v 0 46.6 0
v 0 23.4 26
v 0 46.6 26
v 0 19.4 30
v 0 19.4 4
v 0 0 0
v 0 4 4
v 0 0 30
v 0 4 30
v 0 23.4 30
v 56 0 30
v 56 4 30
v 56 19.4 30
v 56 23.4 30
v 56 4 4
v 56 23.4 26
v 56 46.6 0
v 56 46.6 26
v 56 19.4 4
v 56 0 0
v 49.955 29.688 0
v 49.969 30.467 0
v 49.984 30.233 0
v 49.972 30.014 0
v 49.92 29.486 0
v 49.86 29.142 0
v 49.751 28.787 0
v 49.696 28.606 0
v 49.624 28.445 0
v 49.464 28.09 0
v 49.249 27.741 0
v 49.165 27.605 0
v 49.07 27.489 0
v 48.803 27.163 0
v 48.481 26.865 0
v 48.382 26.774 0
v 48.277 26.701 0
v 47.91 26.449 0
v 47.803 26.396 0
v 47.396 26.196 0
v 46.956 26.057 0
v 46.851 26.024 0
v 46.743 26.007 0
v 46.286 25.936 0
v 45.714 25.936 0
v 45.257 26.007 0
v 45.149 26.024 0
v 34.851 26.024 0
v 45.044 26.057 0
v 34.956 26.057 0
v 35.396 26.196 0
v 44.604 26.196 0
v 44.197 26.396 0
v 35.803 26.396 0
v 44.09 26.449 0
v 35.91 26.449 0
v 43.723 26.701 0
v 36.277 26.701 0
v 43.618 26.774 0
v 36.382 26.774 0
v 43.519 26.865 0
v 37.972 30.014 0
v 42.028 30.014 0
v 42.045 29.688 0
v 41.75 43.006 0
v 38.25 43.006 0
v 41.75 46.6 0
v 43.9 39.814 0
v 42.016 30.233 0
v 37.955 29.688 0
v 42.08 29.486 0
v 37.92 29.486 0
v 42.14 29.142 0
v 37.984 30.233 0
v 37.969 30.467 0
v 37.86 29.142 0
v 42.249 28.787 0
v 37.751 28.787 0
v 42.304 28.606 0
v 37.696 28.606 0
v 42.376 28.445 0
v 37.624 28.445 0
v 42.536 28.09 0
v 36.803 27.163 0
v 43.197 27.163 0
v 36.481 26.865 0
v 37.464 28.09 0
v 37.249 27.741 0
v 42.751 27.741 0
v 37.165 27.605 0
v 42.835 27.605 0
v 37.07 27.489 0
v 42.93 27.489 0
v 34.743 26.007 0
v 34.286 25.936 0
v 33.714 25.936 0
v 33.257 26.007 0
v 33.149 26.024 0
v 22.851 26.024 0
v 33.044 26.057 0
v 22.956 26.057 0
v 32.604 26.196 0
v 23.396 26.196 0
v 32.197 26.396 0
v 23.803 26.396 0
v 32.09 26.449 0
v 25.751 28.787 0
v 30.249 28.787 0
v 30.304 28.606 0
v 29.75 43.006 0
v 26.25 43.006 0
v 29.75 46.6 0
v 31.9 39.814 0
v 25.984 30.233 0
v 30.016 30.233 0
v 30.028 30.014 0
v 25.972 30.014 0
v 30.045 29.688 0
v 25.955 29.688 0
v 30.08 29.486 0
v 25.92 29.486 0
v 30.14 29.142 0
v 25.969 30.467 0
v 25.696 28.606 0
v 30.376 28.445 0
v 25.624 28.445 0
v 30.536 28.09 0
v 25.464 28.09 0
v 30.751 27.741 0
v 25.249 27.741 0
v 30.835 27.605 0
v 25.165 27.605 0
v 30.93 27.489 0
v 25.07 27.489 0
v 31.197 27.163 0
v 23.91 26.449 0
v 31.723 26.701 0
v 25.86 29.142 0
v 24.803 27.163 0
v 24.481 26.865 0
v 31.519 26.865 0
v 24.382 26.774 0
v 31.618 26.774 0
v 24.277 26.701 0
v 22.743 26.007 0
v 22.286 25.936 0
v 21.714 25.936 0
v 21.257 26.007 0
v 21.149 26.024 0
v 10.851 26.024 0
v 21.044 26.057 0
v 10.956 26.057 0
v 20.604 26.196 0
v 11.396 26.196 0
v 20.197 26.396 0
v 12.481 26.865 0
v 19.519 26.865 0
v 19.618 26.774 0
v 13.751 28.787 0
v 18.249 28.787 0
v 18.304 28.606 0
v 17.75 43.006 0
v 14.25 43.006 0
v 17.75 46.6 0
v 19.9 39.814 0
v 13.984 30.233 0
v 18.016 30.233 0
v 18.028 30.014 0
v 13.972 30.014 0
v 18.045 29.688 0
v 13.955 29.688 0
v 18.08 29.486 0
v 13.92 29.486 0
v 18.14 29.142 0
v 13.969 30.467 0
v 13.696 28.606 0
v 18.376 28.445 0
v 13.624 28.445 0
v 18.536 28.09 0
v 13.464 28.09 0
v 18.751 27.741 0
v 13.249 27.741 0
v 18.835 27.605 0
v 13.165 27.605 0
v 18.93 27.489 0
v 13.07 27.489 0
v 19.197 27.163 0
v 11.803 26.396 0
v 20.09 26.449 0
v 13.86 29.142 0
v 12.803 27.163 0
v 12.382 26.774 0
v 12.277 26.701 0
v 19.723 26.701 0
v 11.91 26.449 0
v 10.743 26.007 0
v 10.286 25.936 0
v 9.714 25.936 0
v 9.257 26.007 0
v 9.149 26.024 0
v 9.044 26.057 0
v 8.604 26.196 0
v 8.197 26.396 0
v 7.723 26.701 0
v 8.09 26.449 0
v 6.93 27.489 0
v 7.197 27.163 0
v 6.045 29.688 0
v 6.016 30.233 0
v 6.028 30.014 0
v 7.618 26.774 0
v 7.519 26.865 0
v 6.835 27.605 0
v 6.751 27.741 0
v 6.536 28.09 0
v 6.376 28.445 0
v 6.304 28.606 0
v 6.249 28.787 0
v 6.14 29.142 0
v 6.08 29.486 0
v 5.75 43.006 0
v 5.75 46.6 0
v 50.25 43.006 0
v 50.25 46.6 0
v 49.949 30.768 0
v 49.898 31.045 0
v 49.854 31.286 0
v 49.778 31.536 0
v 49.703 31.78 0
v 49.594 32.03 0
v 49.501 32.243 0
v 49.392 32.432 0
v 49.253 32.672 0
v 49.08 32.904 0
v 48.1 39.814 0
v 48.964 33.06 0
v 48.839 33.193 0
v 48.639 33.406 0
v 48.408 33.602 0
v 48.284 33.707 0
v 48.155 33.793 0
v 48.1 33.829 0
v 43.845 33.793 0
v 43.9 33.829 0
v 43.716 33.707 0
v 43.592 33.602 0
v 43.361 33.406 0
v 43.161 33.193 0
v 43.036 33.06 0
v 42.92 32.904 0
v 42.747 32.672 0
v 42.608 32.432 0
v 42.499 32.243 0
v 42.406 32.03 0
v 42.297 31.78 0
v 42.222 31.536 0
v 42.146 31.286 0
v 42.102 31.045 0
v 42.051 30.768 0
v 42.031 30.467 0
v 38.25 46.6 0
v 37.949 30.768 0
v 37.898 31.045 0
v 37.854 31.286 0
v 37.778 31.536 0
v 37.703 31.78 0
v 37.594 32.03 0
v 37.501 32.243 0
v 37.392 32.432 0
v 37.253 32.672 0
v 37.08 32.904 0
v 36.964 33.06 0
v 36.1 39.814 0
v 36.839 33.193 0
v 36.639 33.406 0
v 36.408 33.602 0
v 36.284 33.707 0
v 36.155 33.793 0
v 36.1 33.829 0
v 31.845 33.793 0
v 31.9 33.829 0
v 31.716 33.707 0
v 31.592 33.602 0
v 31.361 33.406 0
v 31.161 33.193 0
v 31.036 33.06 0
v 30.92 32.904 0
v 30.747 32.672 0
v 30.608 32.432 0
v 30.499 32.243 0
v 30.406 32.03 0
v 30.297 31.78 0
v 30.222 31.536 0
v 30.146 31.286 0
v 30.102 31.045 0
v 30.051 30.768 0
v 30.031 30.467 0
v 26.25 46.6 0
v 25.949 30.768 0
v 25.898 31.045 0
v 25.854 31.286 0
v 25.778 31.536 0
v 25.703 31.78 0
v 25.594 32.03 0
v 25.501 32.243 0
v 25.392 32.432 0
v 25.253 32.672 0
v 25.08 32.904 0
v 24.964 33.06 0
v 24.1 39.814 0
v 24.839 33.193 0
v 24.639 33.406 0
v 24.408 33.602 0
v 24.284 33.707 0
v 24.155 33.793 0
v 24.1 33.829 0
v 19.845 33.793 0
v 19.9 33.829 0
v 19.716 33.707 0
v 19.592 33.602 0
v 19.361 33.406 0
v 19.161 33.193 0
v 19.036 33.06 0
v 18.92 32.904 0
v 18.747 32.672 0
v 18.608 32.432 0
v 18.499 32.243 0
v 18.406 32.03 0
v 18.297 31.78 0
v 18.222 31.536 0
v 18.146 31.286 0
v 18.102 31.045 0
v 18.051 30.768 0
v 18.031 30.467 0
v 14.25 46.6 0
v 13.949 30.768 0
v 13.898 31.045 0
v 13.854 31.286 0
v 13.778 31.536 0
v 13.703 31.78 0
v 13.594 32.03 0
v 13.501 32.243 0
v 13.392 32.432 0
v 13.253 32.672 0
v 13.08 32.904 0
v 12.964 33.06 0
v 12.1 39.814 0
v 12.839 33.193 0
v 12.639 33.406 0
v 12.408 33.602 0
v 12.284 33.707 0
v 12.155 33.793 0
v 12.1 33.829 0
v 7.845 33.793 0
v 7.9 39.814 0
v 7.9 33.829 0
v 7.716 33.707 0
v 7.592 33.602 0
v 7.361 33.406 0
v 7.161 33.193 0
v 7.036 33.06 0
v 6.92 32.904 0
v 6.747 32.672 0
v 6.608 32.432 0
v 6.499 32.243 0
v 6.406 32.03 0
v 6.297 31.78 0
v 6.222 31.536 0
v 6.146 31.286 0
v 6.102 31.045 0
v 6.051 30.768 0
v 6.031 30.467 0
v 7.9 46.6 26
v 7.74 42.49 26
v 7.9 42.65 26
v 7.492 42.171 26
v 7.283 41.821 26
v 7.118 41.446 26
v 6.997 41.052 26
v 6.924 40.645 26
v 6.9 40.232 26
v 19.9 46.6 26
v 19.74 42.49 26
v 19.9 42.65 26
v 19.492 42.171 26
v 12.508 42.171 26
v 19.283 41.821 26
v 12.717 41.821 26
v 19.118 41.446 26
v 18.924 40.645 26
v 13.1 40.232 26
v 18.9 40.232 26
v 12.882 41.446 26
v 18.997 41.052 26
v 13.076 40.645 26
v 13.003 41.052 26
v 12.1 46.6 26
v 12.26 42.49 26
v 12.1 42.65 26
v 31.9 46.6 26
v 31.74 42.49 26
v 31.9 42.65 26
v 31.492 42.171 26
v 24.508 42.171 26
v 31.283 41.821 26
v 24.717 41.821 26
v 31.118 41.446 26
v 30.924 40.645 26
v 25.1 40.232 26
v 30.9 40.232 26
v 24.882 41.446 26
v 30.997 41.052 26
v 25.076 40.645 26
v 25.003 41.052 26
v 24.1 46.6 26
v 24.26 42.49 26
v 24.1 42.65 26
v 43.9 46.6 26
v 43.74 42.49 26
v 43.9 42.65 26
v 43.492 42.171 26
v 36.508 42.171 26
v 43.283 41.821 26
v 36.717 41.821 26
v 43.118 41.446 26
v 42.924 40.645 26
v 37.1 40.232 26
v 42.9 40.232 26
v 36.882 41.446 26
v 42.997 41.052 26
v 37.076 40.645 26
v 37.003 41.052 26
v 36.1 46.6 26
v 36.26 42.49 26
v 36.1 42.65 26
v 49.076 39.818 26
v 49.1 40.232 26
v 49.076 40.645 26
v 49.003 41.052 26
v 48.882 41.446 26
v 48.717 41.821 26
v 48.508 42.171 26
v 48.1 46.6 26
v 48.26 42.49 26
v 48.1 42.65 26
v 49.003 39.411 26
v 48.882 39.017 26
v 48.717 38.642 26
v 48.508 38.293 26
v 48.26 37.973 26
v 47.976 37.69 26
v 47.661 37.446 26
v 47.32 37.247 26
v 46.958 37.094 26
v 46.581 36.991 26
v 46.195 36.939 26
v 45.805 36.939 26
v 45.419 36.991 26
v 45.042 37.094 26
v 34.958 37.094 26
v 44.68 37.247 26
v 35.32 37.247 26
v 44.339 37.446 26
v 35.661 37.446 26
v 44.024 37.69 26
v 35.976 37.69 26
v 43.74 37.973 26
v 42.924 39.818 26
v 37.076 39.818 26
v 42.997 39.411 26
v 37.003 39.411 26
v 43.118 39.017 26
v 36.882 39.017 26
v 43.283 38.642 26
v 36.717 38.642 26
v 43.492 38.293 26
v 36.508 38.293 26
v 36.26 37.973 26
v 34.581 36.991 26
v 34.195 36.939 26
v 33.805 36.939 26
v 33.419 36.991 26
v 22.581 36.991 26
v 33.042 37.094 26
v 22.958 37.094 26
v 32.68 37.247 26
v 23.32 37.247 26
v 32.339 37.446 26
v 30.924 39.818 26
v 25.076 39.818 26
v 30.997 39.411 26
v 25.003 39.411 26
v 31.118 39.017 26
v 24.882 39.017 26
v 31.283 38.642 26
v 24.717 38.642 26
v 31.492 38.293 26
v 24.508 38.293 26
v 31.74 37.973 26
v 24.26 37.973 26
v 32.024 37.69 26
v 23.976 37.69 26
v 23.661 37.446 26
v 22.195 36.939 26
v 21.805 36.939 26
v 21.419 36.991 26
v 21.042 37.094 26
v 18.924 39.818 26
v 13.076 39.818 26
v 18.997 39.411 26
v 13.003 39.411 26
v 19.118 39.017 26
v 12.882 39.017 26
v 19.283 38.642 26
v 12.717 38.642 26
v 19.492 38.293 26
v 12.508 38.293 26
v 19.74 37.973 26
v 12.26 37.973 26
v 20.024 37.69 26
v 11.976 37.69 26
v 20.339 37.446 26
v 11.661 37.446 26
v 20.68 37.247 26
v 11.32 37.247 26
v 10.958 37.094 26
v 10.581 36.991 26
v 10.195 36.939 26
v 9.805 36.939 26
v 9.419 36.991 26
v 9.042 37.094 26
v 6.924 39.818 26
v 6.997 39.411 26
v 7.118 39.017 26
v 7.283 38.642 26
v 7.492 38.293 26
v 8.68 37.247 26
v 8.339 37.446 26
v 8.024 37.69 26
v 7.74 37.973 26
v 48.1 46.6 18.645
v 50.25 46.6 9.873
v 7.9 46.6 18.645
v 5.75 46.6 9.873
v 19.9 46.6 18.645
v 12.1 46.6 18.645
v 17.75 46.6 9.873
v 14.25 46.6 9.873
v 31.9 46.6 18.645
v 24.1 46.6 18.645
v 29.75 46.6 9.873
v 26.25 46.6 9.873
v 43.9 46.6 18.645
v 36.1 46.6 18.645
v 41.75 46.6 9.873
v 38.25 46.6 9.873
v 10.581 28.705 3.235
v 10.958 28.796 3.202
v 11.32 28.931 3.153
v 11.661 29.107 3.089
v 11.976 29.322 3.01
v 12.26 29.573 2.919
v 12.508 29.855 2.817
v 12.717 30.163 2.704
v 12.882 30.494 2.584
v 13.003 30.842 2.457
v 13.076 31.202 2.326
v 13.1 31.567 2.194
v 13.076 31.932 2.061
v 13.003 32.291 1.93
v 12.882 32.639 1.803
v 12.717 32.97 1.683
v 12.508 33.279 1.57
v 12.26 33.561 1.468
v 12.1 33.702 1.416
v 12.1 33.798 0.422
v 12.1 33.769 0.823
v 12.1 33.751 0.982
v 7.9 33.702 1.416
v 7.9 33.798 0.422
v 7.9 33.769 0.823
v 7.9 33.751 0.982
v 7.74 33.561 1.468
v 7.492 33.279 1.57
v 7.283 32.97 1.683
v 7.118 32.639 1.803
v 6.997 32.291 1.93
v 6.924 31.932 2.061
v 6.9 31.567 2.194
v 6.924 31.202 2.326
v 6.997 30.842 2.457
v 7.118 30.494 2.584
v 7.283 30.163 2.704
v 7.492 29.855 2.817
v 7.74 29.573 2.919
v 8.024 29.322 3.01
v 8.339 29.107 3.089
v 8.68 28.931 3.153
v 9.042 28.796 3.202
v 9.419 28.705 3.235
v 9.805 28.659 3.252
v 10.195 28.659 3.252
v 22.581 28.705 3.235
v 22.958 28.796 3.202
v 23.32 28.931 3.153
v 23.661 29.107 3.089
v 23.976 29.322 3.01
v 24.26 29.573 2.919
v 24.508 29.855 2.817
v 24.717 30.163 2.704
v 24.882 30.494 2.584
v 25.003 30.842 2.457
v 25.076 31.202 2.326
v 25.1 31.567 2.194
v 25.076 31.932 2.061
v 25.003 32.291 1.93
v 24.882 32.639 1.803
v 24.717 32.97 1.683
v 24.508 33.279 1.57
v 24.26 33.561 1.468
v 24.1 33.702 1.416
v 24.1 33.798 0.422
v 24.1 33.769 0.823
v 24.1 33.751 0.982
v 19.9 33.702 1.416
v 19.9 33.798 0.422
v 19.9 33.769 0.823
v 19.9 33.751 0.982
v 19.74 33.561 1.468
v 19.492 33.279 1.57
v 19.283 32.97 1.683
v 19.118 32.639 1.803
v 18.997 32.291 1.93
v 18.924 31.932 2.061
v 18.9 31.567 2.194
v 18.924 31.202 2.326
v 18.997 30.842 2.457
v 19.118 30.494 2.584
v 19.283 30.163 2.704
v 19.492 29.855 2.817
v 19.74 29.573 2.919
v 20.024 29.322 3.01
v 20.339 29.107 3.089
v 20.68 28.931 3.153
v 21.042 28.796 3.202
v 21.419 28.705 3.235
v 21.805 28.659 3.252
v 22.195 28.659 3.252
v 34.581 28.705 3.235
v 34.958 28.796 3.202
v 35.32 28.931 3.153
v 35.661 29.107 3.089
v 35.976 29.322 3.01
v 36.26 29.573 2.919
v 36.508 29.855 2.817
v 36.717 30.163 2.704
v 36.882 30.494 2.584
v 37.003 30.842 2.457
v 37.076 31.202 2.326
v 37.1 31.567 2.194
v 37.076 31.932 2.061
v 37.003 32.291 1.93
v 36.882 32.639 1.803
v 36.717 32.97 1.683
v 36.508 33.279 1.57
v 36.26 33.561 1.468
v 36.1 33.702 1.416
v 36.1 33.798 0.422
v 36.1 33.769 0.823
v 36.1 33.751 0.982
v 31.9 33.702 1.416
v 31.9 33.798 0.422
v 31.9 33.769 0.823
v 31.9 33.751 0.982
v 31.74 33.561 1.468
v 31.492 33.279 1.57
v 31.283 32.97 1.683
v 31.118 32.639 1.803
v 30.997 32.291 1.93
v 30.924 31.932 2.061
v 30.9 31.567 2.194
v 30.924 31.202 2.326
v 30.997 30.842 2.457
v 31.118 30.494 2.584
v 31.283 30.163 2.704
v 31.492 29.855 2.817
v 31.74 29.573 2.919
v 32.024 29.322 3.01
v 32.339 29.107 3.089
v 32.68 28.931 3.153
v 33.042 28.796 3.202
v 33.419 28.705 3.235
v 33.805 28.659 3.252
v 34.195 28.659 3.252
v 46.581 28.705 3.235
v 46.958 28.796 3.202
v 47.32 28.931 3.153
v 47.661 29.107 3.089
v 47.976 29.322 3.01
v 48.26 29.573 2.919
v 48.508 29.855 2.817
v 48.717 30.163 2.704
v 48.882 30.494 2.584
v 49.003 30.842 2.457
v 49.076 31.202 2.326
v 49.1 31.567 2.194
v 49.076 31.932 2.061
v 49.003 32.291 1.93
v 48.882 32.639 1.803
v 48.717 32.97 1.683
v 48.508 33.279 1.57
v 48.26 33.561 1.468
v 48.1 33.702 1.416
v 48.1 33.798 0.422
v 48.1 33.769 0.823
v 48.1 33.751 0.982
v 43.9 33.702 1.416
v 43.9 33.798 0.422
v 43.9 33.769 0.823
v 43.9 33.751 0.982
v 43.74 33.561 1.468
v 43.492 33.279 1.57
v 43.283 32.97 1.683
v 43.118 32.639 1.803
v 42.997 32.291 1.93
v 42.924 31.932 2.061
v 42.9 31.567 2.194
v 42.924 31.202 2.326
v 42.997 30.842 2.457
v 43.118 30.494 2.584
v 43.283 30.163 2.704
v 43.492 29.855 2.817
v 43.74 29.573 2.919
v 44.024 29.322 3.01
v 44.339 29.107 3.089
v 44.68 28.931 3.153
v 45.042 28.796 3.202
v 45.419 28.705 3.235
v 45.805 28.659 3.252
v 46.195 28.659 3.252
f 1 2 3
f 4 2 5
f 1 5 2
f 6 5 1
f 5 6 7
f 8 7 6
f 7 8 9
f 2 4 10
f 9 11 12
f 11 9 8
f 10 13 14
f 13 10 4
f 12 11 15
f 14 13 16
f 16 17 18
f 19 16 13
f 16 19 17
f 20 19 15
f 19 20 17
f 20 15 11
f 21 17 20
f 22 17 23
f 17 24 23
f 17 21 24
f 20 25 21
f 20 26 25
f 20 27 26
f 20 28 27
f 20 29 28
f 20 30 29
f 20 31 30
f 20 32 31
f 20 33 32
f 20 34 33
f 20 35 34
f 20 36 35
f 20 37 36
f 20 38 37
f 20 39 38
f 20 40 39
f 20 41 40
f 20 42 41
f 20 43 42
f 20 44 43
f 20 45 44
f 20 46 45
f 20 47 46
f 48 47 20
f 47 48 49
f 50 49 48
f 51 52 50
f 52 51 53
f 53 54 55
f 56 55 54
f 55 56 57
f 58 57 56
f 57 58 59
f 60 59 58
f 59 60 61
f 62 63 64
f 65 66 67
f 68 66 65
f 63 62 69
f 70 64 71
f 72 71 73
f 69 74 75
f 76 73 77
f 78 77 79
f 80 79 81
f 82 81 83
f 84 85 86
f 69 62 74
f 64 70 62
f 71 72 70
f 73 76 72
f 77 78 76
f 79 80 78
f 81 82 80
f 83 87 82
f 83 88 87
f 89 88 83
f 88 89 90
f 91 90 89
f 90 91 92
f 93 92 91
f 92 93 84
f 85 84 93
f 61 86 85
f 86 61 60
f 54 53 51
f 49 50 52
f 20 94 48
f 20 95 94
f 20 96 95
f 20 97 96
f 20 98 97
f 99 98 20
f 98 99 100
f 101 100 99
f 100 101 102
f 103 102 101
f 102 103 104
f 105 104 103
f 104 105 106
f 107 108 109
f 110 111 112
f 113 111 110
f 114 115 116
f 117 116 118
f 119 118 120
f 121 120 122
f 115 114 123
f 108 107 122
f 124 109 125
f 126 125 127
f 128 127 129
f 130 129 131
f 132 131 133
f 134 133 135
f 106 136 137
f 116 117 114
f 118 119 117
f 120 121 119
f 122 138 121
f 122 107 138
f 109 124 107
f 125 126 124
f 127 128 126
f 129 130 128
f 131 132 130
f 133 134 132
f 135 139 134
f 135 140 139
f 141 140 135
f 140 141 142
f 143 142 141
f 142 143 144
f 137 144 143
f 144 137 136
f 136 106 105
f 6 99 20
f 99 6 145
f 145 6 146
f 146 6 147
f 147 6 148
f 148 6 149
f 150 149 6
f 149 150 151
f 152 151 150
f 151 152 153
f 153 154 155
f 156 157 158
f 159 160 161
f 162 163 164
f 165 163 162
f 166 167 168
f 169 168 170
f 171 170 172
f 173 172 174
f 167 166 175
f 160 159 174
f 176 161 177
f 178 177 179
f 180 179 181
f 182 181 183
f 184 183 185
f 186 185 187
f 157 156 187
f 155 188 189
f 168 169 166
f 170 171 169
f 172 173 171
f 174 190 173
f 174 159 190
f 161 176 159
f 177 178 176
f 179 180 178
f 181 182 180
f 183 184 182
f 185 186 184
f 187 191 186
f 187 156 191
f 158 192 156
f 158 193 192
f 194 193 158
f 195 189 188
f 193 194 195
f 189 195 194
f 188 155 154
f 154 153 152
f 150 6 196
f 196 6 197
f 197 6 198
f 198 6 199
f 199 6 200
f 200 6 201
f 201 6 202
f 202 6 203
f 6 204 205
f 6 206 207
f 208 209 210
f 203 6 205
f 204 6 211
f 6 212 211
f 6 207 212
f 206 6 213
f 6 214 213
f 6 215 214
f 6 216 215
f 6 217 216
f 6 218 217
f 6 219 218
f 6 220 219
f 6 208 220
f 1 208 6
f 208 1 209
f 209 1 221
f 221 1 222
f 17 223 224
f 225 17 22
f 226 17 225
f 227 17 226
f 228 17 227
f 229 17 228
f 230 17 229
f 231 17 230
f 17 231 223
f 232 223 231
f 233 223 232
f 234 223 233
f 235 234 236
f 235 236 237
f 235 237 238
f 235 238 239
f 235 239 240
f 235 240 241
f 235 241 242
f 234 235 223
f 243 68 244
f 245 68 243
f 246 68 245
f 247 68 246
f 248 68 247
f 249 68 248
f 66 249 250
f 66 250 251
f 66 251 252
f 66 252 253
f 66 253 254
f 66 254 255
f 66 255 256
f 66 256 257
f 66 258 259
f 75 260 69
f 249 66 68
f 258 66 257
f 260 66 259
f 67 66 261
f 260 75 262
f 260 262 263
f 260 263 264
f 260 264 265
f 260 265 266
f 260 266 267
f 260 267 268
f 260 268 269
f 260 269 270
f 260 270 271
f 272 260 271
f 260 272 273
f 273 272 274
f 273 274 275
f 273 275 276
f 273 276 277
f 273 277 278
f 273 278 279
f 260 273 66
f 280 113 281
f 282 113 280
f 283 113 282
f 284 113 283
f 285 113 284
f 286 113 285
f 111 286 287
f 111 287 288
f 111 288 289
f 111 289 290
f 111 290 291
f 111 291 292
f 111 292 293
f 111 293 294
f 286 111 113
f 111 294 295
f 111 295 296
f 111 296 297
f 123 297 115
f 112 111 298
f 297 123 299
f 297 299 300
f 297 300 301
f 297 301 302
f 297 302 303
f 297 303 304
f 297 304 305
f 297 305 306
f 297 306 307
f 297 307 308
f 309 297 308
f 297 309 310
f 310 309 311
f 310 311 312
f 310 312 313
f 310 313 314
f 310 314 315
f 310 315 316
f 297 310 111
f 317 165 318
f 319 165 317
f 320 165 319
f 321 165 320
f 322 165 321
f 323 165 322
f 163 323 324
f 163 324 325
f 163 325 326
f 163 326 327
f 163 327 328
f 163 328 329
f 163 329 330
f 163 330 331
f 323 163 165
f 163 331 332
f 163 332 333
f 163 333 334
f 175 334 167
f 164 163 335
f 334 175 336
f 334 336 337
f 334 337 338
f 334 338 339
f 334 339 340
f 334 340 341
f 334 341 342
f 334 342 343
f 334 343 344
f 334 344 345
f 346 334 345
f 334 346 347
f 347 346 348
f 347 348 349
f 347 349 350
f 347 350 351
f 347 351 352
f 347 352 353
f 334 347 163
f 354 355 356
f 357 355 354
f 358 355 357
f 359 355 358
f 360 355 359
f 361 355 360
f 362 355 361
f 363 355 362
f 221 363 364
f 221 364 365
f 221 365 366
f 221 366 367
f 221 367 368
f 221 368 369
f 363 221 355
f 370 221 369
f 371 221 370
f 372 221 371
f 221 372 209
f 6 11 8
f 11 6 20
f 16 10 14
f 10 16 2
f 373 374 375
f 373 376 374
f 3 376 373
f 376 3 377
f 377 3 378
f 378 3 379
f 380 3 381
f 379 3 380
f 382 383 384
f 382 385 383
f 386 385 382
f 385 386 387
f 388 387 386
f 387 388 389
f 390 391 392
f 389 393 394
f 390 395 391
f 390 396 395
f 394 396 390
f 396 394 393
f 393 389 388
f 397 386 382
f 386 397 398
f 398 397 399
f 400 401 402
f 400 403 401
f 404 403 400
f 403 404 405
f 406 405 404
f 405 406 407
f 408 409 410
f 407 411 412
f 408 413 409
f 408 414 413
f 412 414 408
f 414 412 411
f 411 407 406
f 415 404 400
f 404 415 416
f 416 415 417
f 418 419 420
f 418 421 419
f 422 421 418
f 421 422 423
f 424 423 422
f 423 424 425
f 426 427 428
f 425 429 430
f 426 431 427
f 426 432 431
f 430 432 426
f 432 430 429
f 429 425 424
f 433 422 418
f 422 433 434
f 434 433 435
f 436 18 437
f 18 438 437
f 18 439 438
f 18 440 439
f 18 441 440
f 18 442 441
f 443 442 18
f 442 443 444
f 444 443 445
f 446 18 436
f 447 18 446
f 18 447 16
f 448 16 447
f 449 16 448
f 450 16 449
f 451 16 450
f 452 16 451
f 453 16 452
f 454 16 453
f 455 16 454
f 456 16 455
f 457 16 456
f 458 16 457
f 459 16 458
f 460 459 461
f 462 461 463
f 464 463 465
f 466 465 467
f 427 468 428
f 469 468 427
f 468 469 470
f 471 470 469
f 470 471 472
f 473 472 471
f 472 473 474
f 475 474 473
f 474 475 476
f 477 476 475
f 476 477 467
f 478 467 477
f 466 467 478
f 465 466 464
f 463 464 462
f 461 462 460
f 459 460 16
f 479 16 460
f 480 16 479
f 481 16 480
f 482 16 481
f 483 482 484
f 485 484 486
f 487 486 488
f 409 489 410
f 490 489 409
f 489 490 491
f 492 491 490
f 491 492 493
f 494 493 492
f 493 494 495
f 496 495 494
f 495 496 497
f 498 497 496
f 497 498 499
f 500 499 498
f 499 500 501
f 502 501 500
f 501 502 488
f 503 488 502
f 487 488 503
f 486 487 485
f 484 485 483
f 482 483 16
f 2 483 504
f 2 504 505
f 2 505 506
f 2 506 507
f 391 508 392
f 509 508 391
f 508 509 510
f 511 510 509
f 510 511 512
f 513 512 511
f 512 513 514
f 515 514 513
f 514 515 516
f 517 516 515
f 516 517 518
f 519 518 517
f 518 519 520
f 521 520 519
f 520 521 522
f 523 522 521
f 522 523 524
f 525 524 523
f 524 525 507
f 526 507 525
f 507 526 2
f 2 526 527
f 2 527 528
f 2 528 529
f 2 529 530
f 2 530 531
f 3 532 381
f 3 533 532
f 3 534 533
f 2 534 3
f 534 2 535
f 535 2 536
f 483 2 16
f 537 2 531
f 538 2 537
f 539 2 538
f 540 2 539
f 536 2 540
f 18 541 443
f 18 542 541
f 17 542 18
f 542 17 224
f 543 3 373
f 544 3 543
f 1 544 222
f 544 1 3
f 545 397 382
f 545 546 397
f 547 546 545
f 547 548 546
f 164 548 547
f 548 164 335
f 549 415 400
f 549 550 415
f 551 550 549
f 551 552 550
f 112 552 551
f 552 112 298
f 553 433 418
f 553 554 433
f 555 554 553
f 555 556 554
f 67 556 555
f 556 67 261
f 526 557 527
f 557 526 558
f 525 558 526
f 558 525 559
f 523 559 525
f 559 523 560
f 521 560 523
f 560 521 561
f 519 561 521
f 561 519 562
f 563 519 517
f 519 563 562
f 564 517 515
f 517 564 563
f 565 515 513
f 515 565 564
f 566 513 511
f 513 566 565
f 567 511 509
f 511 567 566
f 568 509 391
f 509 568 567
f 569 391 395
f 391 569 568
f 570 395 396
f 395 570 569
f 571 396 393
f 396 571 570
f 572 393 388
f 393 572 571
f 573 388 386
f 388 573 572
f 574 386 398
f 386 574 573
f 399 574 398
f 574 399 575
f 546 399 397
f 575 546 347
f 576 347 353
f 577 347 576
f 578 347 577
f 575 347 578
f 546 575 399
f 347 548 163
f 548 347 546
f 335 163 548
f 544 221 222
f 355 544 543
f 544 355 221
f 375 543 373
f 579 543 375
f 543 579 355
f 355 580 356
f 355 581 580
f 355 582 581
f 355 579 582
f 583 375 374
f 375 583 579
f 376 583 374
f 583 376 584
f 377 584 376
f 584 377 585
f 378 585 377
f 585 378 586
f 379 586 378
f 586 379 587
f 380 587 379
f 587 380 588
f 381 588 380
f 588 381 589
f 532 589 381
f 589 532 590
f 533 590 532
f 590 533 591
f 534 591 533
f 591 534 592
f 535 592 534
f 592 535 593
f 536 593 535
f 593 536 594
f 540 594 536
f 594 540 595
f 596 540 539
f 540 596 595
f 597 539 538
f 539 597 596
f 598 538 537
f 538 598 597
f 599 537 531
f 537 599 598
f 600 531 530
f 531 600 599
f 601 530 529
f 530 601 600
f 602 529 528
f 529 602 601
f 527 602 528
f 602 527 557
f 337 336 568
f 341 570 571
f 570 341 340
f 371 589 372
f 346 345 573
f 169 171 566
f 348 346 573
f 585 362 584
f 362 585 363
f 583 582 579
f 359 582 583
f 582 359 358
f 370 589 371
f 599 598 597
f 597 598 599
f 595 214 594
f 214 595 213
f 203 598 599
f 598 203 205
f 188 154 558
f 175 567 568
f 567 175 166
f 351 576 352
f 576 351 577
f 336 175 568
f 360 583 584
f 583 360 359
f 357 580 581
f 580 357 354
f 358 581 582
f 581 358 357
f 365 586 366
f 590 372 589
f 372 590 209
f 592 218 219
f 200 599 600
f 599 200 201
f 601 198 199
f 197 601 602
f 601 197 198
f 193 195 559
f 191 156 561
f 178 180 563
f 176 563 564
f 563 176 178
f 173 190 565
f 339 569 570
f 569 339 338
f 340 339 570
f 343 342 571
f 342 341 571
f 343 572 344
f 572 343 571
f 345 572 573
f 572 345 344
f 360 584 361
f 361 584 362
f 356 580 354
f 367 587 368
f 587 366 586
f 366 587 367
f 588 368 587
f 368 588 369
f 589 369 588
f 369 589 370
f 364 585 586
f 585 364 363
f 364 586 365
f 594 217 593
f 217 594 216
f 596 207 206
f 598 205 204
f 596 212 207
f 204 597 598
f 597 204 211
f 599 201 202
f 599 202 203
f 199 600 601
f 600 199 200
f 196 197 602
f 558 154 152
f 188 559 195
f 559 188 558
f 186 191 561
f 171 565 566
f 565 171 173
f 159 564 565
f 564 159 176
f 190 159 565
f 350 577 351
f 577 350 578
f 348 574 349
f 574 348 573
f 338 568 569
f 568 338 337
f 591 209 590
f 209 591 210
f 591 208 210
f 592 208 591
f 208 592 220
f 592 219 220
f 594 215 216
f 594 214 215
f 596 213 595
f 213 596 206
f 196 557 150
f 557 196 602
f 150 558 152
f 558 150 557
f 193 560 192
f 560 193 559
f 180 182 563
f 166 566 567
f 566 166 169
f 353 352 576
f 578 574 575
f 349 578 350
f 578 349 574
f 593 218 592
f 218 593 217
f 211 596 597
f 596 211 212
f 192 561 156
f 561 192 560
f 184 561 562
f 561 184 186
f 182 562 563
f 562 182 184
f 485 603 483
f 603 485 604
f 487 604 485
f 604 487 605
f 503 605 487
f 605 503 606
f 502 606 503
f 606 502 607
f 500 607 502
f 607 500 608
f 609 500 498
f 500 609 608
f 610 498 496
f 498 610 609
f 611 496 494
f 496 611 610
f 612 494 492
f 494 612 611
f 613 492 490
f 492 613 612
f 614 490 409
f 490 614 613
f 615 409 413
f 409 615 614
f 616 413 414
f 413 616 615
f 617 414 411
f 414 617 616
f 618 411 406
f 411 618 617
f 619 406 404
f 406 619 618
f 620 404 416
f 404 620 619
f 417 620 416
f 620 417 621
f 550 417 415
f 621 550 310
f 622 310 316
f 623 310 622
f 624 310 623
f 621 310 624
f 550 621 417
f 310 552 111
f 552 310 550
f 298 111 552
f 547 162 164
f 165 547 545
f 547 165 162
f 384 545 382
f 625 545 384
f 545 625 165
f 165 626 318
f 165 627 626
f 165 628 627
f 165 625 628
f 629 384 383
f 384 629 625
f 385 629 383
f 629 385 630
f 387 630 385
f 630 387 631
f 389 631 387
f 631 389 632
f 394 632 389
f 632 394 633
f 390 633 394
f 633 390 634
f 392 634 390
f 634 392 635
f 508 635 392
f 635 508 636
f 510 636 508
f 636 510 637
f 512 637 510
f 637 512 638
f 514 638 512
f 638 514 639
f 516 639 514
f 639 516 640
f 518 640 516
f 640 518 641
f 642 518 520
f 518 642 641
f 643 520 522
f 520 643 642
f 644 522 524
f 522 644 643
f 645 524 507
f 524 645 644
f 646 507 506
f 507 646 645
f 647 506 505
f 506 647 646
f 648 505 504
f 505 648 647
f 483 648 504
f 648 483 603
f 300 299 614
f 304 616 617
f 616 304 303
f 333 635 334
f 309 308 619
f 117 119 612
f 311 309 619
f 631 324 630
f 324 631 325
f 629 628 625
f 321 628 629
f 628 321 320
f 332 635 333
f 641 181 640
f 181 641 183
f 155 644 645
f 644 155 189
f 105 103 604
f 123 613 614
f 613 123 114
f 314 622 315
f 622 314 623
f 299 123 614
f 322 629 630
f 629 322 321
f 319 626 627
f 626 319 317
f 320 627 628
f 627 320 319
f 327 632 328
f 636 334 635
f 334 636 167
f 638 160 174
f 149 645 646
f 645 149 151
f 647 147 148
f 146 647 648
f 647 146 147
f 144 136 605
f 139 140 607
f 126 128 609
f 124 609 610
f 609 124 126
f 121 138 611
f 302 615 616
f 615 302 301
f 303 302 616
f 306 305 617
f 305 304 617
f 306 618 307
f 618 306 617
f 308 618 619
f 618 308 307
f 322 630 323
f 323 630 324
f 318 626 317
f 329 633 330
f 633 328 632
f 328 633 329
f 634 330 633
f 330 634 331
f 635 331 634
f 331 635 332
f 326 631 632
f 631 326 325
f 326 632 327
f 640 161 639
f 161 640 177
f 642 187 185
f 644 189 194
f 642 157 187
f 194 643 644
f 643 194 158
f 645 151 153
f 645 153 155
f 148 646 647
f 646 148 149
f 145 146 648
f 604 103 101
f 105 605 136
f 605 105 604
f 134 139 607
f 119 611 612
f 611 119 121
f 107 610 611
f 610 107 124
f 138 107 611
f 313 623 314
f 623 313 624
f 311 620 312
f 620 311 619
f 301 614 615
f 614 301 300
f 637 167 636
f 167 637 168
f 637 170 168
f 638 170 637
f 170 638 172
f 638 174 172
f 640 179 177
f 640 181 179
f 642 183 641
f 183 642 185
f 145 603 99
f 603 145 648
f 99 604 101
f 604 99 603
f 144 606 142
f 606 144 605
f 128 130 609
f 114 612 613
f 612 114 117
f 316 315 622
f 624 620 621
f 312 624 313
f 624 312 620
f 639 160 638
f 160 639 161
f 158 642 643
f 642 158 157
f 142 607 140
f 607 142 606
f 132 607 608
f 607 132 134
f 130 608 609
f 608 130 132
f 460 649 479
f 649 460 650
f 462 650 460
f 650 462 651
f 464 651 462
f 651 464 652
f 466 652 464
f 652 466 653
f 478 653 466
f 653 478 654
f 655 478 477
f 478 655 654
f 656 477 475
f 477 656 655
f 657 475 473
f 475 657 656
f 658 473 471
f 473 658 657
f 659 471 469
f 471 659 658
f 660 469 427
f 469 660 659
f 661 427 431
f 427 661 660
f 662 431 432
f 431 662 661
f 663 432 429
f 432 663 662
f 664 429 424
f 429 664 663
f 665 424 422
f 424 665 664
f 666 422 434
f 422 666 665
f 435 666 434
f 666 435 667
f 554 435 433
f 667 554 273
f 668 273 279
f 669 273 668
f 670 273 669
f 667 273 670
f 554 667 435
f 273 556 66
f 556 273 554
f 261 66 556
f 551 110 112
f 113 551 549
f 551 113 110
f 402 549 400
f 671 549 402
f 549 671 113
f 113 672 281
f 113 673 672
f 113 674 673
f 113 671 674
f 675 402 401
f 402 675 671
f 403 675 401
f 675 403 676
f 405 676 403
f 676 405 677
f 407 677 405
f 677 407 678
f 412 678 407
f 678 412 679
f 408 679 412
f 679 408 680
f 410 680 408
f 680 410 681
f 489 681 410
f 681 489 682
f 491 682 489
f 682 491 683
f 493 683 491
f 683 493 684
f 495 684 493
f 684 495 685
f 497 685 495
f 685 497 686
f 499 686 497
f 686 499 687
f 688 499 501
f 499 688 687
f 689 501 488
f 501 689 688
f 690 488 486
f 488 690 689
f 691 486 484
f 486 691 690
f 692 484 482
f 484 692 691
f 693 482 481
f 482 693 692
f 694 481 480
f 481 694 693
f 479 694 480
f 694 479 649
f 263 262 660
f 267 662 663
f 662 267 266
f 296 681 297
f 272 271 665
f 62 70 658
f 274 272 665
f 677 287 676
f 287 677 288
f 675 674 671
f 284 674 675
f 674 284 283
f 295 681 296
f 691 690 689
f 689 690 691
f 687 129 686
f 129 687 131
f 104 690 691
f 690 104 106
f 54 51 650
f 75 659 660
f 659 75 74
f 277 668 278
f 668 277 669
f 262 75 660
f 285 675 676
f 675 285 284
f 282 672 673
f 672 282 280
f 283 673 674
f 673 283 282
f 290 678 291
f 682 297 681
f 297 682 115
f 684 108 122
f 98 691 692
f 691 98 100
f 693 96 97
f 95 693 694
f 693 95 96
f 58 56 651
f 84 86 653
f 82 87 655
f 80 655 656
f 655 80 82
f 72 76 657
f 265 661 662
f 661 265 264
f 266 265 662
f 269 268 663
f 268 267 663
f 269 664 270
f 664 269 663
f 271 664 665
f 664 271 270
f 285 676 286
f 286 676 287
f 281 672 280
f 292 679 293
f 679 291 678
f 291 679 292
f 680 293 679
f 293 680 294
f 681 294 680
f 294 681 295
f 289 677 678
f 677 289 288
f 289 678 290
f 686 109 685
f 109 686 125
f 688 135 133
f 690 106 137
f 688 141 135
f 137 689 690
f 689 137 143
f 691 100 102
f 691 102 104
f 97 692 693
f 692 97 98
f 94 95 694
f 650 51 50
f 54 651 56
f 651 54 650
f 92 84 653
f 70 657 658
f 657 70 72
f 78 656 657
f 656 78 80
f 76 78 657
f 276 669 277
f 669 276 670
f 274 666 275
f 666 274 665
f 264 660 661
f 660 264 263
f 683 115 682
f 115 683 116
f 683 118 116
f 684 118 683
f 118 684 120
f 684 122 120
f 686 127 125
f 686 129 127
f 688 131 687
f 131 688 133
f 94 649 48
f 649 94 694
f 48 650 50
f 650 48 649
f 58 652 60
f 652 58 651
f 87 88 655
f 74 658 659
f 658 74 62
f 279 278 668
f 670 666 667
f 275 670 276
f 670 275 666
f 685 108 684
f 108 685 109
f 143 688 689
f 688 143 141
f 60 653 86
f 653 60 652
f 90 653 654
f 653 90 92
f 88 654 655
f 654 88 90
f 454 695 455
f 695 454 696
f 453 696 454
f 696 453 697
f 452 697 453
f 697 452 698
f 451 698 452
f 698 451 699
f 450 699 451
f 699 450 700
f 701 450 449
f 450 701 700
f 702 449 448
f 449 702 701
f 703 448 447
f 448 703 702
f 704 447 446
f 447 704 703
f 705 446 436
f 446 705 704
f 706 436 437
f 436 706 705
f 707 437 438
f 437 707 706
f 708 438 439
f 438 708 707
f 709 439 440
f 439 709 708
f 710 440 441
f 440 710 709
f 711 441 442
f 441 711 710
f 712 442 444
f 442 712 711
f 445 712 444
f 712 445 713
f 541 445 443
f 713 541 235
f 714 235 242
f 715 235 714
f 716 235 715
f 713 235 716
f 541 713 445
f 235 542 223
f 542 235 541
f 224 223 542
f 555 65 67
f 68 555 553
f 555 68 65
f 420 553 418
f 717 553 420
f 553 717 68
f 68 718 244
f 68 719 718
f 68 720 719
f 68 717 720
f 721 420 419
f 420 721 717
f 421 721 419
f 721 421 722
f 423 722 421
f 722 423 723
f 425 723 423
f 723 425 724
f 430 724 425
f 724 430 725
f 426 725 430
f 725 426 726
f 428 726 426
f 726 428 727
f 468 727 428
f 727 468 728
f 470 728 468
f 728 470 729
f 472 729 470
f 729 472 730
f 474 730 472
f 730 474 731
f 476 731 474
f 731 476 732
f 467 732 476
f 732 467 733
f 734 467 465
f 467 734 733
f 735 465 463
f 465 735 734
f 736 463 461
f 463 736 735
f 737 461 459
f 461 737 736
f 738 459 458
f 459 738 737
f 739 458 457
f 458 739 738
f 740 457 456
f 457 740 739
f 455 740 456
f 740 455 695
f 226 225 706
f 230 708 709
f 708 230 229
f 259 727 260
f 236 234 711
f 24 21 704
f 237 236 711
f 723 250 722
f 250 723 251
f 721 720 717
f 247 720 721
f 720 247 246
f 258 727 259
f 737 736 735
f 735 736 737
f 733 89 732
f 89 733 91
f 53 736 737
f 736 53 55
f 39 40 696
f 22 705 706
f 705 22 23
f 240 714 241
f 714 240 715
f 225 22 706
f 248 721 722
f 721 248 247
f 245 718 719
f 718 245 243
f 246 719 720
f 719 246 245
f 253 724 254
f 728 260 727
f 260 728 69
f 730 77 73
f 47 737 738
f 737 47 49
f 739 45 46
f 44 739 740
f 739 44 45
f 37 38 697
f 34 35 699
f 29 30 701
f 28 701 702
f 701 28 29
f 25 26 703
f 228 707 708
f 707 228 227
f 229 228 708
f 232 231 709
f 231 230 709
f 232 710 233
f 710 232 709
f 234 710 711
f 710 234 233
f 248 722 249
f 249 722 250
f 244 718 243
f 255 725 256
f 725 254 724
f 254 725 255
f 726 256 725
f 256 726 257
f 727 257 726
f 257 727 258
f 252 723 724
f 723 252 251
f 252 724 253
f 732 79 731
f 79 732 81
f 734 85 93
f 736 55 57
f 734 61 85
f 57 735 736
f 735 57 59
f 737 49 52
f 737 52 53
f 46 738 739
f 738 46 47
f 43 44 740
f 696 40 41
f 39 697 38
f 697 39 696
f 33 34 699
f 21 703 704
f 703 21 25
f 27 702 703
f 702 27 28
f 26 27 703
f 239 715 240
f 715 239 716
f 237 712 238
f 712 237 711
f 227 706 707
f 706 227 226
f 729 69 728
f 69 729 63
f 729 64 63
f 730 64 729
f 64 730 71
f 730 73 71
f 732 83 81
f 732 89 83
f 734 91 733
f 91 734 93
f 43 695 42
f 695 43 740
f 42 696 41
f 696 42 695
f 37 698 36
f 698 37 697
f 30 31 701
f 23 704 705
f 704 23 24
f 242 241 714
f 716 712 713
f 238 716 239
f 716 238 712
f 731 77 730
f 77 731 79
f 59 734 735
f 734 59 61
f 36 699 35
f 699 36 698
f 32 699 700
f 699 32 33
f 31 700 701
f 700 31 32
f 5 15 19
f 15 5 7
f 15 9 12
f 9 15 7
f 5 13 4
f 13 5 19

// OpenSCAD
// =========================================================================
// DRŽÁK 4x HADIČKY NA SKLO 15mm - SPRÁVNĚ V OSE SRAŽENÝ NÁBĚH (20°)
// =========================================================================

/* [Nastavení hadiček a sklonu] */
uhel_sklonu = 20.0;         // Sklon 20° směrem do akvária
pocet_hadicek = 4;
hadicka_vnejsi_d = 6.2;     // Kruhové lůžko pro 6mm hadičku
hadicka_zarez_w = 4.2;      // Zúžení pro zacvaknutí silikonu
roztec_hadicek = 12.0;      // Rozteč mezi hadičkami
odsazeni_od_skla = 13.0;    // Odsazení od vnitřní stěny skla

/* [Parametry skla] */
tloustka_skla = 15.0;       // Tloušťka skla
vule_skla = 0.4;            // Šachta 15.4 mm
hloubka_nasunuti = 26.0;    // Hloubka sedla na sklo

/* [Konstrukce] */
stena_klipu = 4.0;
vyska_vedeni = 22.0;

// Pomocné rozměry
sachta_sklo = tloustka_skla + vule_skla;
sirka_drzaku = (pocet_hadicek - 1) * roztec_hadicek + 20.0; // cca 56 mm
vyloha_celkova_y = odsazeni_od_skla + hadicka_vnejsi_d + stena_klipu + 4.0;

$fn = 50;

// ==========================================
// VYKRESLENÍ
// ==========================================
drzak_hadicek_final();

module drzak_hadicek_final() {
    difference() {
        // 1. ZÁKLADNÍ TĚLO
        union() {
            // Sedlo přes sklo
            cube([sirka_drzaku, sachta_sklo + 2 * stena_klipu, hloubka_nasunuti + stena_klipu]);
            
            // Konzola pro hadičky směřující do akvária
            translate([0, sachta_sklo + stena_klipu, 0])
                cube([sirka_drzaku, vyloha_celkova_y, vyska_vedeni + stena_klipu]);
        }

        // 2. ŠACHTA PRO SKLO (15.4 mm)
        translate([-1, stena_klipu, stena_klipu])
            cube([sirka_drzaku + 2, sachta_sklo, hloubka_nasunuti + 10]);

        // Náběhové zkosení pro nasunutí na sklo zespodu
        translate([-1, stena_klipu, hloubka_nasunuti + stena_klipu])
            rotate([45, 0, 0]) cube([sirka_drzaku + 2, 3, 3]);

        translate([-1, stena_klipu + sachta_sklo, hloubka_nasunuti + stena_klipu])
            rotate([45, 0, 0]) cube([sirka_drzaku + 2, 3, 3]);

        // 3. ŠIKMÉ ZACVAKÁVACÍ KANÁLY SE SPRÁVNÝM NÁBĚHEM V OSE
        hadicky_stred_y = sachta_sklo + stena_klipu + odsazeni_od_skla + (hadicka_vnejsi_d / 2);
        stred_vysky = (vyska_vedeni + stena_klipu) / 2;
        delka_rezu = vyska_vedeni + stena_klipu + 15;
        
        for (i = [0 : pocet_hadicek - 1]) {
            hadicka_x = (sirka_drzaku - (pocet_hadicek - 1) * roztec_hadicek) / 2 + (i * roztec_hadicek);

            translate([hadicka_x, hadicky_stred_y, stred_vysky]) {
                rotate([-uhel_sklonu, 0, 0]) {
                    
                    // A) Hladký průchozí C-profil (lůžko + drážka + trychtýř)
                    linear_extrude(height = delka_rezu, center = true) {
                        profil_hadicky_2d();
                    }

                    // B) Plnohodnotný náběhový kužel PŘESNĚ V OSE KANÁLU
                    // Začíná bezpečně nad šikmou rovinou a plynule přechází do 6.2 mm otvoru
                    translate([0, 0, -17.0])
                        cylinder(d1 = 10.2, d2 = hadicka_vnejsi_d, h = 5.5);
                }
            }
        }
    }
}

// ==========================================
// HLADKÝ 2D PROFIL PRO ZACVAKNUTÍ HADIČKY
// ==========================================
module profil_hadicky_2d() {
    // A) Kruhové lůžko pro hadičku
    circle(d = hadicka_vnejsi_d);
    
    // B) Plynulý zářez s trychtýřem na čele
    polygon(points = [
        [-hadicka_zarez_w / 2, 0],
        [ hadicka_zarez_w / 2, 0],
        [ hadicka_zarez_w / 2, 8.5],
        [ 4.25, 8.5 + 3.0],          // náběh trychtýře (šířka 8.5 mm)
        [ 4.25, 25.0],               // průchod ven z čela
        [-4.25, 25.0],
        [-4.25, 8.5 + 3.0],
        [-hadicka_zarez_w / 2, 8.5]
    ]);
}
